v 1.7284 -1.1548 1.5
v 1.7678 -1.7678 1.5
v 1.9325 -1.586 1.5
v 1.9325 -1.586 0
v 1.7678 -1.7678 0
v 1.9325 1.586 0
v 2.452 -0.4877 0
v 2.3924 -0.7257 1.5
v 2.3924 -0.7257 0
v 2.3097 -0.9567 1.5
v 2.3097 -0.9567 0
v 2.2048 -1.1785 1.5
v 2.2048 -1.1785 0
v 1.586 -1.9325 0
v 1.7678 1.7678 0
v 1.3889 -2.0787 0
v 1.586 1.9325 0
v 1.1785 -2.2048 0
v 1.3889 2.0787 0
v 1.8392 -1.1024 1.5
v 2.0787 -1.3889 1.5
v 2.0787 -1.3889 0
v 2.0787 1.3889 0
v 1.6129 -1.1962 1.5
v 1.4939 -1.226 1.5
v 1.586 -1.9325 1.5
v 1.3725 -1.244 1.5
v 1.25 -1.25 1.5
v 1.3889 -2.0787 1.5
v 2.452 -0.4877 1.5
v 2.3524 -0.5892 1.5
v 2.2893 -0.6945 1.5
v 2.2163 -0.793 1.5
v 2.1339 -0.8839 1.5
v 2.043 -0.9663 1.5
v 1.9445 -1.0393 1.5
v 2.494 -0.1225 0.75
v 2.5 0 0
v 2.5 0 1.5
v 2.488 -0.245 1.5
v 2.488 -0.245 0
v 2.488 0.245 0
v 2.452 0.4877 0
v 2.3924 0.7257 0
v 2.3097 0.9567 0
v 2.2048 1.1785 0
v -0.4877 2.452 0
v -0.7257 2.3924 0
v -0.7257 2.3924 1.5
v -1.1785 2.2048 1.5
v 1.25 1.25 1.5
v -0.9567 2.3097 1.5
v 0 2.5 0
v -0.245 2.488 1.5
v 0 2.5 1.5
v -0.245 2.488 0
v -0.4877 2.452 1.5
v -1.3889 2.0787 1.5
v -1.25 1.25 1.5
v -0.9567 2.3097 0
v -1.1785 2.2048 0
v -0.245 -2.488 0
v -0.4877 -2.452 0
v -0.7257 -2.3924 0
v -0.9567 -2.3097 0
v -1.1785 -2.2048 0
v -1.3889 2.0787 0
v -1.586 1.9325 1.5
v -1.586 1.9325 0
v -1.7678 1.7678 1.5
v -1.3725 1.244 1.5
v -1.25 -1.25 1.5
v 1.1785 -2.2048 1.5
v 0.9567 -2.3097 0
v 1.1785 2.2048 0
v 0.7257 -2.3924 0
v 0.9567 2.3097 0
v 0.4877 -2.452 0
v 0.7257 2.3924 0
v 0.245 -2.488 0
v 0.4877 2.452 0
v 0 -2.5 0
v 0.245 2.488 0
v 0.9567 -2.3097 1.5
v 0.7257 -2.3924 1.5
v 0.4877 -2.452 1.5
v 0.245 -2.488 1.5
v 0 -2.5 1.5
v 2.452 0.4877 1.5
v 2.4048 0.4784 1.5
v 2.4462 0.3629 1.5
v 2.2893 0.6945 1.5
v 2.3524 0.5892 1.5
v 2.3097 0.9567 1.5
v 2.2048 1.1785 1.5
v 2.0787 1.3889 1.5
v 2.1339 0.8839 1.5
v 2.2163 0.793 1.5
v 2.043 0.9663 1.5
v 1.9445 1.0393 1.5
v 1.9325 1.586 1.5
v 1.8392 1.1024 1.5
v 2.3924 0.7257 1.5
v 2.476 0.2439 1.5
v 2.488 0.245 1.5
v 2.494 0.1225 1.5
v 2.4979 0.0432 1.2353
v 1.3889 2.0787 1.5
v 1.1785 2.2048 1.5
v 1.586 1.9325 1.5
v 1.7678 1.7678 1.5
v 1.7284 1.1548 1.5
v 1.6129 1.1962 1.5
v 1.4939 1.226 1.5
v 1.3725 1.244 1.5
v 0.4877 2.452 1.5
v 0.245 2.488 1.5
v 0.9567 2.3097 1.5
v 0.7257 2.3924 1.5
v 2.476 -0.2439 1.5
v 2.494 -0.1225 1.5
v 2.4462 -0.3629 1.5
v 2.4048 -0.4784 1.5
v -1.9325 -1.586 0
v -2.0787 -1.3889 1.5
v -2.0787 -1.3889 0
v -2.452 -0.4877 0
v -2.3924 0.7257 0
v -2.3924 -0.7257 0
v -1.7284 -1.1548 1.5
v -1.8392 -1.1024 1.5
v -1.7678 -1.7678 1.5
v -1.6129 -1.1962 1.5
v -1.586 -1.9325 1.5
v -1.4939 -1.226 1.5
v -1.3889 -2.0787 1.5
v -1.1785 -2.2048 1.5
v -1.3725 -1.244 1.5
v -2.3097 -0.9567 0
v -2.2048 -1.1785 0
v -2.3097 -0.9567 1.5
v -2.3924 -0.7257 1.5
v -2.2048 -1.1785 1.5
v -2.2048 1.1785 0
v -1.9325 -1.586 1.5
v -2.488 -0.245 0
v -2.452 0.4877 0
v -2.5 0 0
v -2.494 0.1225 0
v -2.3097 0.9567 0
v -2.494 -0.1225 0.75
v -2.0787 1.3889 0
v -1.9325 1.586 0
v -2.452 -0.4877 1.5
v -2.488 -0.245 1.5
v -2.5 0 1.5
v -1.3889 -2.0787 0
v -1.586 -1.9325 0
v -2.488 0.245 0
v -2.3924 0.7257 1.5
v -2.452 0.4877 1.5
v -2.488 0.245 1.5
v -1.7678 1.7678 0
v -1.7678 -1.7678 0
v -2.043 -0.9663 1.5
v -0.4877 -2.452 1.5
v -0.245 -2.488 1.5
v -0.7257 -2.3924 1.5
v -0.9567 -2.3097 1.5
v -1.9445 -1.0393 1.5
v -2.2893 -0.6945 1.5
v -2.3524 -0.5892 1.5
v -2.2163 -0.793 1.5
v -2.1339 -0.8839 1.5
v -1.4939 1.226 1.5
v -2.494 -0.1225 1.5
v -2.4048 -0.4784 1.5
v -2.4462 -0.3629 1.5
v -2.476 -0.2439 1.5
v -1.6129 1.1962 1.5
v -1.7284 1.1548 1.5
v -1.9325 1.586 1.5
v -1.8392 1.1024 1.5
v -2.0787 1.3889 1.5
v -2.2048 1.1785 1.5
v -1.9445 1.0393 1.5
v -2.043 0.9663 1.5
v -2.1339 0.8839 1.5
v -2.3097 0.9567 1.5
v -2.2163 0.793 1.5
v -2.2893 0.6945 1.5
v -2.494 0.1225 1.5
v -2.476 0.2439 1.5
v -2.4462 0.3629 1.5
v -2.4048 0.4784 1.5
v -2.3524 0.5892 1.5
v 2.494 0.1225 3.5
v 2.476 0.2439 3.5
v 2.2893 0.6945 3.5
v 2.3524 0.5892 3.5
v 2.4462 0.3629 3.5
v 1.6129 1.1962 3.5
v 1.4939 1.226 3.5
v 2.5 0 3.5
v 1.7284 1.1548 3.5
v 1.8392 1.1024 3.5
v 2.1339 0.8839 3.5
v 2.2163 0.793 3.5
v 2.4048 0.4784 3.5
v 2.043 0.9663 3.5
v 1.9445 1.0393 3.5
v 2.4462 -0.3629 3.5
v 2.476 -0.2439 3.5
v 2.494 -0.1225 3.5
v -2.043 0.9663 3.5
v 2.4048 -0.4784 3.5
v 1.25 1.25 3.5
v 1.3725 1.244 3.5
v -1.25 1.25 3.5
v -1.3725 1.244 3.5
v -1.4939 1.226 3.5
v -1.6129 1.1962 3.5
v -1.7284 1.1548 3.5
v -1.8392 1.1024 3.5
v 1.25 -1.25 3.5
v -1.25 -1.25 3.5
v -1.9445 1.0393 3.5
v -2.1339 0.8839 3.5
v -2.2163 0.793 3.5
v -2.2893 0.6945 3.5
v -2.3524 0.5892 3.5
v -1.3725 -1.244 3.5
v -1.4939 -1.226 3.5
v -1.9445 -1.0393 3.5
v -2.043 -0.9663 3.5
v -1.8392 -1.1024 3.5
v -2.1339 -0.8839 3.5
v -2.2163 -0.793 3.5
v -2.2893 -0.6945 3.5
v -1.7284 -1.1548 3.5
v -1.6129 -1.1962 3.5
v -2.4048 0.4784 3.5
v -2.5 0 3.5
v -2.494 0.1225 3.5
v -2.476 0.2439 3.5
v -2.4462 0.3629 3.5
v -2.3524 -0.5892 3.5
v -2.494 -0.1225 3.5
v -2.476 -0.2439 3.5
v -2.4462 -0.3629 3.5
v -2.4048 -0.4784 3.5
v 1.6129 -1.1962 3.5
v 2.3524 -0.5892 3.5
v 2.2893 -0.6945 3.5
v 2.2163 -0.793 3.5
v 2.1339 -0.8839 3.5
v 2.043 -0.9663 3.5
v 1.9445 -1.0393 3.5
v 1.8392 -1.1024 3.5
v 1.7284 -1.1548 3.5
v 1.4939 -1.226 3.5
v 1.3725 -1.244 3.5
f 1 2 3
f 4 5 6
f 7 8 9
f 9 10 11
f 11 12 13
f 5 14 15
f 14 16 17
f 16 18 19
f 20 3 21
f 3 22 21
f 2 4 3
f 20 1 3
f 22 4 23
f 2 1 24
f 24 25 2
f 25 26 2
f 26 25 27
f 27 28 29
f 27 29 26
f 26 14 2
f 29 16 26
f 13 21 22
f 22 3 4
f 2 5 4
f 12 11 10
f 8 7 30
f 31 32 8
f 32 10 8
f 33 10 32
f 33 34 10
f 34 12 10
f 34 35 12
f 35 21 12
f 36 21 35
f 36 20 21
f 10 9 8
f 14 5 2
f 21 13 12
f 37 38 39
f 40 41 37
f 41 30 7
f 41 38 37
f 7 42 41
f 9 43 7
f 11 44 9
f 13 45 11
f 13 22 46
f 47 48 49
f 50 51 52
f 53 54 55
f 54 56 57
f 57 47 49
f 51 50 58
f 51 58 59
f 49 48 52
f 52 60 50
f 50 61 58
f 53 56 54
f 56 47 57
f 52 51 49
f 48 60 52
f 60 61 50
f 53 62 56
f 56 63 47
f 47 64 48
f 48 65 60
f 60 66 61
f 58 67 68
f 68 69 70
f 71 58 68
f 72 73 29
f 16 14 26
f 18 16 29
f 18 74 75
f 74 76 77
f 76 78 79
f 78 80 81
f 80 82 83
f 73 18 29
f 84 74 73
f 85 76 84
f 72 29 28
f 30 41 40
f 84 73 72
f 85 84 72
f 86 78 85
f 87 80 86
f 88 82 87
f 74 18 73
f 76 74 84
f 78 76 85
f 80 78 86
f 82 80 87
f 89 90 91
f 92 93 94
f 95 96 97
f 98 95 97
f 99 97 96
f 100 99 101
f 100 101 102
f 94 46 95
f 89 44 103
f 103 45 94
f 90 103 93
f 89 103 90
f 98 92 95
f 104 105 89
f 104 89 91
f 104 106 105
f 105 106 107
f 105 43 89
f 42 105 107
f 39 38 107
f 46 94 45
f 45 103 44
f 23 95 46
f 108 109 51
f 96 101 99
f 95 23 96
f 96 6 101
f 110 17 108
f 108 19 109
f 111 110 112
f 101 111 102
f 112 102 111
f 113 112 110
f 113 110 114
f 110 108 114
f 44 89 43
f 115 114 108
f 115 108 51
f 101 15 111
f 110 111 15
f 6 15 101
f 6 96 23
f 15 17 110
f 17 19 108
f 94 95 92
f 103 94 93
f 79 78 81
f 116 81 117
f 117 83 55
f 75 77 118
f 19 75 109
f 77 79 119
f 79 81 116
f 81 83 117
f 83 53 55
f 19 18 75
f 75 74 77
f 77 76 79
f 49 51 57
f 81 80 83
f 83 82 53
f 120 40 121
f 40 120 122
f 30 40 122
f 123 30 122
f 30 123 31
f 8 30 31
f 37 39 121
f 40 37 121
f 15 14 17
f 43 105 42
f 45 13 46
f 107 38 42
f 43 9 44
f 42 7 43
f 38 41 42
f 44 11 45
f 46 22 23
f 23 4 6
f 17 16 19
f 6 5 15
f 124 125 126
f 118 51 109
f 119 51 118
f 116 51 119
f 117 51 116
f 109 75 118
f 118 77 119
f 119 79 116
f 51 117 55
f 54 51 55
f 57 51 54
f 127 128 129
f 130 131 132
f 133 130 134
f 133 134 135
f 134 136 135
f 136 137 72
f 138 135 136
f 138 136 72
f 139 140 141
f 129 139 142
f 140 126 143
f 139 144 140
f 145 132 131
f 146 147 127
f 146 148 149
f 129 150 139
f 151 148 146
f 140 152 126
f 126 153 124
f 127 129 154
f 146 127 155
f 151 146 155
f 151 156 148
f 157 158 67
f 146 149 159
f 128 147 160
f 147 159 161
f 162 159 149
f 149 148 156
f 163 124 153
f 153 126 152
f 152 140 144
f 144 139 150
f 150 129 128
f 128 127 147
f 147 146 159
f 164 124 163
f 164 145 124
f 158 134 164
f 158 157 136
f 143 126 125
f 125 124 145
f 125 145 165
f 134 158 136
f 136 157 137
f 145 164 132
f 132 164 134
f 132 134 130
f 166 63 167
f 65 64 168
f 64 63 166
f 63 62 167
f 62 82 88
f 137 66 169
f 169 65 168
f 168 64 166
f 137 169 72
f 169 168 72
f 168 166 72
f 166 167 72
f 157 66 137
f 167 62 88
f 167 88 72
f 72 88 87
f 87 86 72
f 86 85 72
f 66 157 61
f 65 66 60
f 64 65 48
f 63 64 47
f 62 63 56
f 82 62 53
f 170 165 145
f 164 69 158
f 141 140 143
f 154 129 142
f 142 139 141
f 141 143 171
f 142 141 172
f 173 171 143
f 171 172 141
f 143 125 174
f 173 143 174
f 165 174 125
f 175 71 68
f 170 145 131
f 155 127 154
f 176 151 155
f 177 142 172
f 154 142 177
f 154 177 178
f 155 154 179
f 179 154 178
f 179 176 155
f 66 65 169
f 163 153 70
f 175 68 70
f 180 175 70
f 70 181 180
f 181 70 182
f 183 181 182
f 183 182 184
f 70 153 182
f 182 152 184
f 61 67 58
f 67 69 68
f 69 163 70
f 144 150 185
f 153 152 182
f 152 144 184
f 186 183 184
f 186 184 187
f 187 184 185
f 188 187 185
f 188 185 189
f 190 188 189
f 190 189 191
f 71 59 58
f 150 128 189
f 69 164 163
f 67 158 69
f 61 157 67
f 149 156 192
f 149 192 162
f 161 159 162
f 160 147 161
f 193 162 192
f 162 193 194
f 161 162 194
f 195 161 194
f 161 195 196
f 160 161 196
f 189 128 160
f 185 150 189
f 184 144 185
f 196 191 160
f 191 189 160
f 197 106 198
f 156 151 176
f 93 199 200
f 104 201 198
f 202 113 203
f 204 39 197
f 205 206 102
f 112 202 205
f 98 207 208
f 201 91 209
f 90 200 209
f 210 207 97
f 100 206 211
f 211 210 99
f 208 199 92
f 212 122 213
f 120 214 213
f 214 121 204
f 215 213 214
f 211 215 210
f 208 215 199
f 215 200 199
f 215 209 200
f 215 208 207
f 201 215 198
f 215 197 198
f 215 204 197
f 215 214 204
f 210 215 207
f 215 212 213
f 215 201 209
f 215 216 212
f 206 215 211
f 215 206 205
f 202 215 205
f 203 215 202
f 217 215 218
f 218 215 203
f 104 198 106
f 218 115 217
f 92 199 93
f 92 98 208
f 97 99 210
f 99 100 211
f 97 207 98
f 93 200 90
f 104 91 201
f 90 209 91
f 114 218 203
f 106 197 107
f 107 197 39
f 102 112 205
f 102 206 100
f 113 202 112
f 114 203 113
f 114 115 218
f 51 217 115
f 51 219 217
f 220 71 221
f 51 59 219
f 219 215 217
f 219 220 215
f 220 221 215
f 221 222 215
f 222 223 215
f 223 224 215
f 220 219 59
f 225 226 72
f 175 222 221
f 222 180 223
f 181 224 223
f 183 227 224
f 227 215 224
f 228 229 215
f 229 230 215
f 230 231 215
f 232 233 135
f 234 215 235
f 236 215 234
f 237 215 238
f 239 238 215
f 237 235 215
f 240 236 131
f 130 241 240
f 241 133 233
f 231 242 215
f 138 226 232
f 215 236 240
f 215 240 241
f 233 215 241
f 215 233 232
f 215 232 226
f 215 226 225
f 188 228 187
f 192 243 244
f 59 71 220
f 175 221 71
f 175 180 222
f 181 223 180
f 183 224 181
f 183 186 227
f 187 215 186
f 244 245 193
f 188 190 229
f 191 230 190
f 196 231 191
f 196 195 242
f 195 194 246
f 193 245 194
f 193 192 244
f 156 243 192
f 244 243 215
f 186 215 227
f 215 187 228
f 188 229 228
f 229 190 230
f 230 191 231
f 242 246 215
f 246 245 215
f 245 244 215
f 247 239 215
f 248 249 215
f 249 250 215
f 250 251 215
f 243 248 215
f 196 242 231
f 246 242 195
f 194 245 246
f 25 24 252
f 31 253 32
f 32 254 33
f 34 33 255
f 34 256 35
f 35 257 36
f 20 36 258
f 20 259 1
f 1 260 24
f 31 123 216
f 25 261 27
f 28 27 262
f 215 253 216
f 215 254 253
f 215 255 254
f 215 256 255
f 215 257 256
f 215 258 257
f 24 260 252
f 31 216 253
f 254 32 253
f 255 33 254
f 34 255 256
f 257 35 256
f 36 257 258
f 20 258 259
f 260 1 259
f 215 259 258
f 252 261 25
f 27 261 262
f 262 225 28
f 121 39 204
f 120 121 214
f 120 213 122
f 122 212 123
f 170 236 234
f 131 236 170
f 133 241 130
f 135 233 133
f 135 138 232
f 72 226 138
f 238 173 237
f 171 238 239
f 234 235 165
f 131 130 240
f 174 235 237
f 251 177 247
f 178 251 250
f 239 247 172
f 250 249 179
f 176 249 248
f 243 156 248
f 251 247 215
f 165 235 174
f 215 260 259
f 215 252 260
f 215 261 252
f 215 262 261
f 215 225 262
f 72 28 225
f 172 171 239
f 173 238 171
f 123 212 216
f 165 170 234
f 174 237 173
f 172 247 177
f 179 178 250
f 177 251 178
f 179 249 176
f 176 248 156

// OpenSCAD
// file: common.scad
$fn = 64;

body_w = 30.5;
body_h = 36;
body_d = 10;

emboss = 5;

tolerances = .1;
dtolerances = tolerances * 2;

lcd_top_offset = 2.5;

lcd_w = 24.8;
lcd_h = 16.7;
lcd_d = 1.5;

lcd_border = .6;
lcd_chin = 3;

strappole_w = 21;
strappole_d = 1.5;

top_d = lcd_d + 1;

module nuthole(w) {
	translate([-5.75/2, -2.5/2, -6.5/2]) cube([5.75, 2.5, 999]);
	
	rotate([90, 0, 0]) cylinder(h = w, d = 3.2, center = true);	
}
// main file
include <common.scad>

module buttonhole() {
	cylinder(d = 5, h = lcd_d);
	
	hull() {
		translate([-1.25, 0]) cylinder(d = 2.5, h = 3.5);
		translate([1.25, 0]) cylinder(d = 2.5, h = 3.5);
	}
}

translate([0, 0]) buttonhole();
// translate([-9, 0]) buttonhole();
// translate([9, 0]) buttonhole();
